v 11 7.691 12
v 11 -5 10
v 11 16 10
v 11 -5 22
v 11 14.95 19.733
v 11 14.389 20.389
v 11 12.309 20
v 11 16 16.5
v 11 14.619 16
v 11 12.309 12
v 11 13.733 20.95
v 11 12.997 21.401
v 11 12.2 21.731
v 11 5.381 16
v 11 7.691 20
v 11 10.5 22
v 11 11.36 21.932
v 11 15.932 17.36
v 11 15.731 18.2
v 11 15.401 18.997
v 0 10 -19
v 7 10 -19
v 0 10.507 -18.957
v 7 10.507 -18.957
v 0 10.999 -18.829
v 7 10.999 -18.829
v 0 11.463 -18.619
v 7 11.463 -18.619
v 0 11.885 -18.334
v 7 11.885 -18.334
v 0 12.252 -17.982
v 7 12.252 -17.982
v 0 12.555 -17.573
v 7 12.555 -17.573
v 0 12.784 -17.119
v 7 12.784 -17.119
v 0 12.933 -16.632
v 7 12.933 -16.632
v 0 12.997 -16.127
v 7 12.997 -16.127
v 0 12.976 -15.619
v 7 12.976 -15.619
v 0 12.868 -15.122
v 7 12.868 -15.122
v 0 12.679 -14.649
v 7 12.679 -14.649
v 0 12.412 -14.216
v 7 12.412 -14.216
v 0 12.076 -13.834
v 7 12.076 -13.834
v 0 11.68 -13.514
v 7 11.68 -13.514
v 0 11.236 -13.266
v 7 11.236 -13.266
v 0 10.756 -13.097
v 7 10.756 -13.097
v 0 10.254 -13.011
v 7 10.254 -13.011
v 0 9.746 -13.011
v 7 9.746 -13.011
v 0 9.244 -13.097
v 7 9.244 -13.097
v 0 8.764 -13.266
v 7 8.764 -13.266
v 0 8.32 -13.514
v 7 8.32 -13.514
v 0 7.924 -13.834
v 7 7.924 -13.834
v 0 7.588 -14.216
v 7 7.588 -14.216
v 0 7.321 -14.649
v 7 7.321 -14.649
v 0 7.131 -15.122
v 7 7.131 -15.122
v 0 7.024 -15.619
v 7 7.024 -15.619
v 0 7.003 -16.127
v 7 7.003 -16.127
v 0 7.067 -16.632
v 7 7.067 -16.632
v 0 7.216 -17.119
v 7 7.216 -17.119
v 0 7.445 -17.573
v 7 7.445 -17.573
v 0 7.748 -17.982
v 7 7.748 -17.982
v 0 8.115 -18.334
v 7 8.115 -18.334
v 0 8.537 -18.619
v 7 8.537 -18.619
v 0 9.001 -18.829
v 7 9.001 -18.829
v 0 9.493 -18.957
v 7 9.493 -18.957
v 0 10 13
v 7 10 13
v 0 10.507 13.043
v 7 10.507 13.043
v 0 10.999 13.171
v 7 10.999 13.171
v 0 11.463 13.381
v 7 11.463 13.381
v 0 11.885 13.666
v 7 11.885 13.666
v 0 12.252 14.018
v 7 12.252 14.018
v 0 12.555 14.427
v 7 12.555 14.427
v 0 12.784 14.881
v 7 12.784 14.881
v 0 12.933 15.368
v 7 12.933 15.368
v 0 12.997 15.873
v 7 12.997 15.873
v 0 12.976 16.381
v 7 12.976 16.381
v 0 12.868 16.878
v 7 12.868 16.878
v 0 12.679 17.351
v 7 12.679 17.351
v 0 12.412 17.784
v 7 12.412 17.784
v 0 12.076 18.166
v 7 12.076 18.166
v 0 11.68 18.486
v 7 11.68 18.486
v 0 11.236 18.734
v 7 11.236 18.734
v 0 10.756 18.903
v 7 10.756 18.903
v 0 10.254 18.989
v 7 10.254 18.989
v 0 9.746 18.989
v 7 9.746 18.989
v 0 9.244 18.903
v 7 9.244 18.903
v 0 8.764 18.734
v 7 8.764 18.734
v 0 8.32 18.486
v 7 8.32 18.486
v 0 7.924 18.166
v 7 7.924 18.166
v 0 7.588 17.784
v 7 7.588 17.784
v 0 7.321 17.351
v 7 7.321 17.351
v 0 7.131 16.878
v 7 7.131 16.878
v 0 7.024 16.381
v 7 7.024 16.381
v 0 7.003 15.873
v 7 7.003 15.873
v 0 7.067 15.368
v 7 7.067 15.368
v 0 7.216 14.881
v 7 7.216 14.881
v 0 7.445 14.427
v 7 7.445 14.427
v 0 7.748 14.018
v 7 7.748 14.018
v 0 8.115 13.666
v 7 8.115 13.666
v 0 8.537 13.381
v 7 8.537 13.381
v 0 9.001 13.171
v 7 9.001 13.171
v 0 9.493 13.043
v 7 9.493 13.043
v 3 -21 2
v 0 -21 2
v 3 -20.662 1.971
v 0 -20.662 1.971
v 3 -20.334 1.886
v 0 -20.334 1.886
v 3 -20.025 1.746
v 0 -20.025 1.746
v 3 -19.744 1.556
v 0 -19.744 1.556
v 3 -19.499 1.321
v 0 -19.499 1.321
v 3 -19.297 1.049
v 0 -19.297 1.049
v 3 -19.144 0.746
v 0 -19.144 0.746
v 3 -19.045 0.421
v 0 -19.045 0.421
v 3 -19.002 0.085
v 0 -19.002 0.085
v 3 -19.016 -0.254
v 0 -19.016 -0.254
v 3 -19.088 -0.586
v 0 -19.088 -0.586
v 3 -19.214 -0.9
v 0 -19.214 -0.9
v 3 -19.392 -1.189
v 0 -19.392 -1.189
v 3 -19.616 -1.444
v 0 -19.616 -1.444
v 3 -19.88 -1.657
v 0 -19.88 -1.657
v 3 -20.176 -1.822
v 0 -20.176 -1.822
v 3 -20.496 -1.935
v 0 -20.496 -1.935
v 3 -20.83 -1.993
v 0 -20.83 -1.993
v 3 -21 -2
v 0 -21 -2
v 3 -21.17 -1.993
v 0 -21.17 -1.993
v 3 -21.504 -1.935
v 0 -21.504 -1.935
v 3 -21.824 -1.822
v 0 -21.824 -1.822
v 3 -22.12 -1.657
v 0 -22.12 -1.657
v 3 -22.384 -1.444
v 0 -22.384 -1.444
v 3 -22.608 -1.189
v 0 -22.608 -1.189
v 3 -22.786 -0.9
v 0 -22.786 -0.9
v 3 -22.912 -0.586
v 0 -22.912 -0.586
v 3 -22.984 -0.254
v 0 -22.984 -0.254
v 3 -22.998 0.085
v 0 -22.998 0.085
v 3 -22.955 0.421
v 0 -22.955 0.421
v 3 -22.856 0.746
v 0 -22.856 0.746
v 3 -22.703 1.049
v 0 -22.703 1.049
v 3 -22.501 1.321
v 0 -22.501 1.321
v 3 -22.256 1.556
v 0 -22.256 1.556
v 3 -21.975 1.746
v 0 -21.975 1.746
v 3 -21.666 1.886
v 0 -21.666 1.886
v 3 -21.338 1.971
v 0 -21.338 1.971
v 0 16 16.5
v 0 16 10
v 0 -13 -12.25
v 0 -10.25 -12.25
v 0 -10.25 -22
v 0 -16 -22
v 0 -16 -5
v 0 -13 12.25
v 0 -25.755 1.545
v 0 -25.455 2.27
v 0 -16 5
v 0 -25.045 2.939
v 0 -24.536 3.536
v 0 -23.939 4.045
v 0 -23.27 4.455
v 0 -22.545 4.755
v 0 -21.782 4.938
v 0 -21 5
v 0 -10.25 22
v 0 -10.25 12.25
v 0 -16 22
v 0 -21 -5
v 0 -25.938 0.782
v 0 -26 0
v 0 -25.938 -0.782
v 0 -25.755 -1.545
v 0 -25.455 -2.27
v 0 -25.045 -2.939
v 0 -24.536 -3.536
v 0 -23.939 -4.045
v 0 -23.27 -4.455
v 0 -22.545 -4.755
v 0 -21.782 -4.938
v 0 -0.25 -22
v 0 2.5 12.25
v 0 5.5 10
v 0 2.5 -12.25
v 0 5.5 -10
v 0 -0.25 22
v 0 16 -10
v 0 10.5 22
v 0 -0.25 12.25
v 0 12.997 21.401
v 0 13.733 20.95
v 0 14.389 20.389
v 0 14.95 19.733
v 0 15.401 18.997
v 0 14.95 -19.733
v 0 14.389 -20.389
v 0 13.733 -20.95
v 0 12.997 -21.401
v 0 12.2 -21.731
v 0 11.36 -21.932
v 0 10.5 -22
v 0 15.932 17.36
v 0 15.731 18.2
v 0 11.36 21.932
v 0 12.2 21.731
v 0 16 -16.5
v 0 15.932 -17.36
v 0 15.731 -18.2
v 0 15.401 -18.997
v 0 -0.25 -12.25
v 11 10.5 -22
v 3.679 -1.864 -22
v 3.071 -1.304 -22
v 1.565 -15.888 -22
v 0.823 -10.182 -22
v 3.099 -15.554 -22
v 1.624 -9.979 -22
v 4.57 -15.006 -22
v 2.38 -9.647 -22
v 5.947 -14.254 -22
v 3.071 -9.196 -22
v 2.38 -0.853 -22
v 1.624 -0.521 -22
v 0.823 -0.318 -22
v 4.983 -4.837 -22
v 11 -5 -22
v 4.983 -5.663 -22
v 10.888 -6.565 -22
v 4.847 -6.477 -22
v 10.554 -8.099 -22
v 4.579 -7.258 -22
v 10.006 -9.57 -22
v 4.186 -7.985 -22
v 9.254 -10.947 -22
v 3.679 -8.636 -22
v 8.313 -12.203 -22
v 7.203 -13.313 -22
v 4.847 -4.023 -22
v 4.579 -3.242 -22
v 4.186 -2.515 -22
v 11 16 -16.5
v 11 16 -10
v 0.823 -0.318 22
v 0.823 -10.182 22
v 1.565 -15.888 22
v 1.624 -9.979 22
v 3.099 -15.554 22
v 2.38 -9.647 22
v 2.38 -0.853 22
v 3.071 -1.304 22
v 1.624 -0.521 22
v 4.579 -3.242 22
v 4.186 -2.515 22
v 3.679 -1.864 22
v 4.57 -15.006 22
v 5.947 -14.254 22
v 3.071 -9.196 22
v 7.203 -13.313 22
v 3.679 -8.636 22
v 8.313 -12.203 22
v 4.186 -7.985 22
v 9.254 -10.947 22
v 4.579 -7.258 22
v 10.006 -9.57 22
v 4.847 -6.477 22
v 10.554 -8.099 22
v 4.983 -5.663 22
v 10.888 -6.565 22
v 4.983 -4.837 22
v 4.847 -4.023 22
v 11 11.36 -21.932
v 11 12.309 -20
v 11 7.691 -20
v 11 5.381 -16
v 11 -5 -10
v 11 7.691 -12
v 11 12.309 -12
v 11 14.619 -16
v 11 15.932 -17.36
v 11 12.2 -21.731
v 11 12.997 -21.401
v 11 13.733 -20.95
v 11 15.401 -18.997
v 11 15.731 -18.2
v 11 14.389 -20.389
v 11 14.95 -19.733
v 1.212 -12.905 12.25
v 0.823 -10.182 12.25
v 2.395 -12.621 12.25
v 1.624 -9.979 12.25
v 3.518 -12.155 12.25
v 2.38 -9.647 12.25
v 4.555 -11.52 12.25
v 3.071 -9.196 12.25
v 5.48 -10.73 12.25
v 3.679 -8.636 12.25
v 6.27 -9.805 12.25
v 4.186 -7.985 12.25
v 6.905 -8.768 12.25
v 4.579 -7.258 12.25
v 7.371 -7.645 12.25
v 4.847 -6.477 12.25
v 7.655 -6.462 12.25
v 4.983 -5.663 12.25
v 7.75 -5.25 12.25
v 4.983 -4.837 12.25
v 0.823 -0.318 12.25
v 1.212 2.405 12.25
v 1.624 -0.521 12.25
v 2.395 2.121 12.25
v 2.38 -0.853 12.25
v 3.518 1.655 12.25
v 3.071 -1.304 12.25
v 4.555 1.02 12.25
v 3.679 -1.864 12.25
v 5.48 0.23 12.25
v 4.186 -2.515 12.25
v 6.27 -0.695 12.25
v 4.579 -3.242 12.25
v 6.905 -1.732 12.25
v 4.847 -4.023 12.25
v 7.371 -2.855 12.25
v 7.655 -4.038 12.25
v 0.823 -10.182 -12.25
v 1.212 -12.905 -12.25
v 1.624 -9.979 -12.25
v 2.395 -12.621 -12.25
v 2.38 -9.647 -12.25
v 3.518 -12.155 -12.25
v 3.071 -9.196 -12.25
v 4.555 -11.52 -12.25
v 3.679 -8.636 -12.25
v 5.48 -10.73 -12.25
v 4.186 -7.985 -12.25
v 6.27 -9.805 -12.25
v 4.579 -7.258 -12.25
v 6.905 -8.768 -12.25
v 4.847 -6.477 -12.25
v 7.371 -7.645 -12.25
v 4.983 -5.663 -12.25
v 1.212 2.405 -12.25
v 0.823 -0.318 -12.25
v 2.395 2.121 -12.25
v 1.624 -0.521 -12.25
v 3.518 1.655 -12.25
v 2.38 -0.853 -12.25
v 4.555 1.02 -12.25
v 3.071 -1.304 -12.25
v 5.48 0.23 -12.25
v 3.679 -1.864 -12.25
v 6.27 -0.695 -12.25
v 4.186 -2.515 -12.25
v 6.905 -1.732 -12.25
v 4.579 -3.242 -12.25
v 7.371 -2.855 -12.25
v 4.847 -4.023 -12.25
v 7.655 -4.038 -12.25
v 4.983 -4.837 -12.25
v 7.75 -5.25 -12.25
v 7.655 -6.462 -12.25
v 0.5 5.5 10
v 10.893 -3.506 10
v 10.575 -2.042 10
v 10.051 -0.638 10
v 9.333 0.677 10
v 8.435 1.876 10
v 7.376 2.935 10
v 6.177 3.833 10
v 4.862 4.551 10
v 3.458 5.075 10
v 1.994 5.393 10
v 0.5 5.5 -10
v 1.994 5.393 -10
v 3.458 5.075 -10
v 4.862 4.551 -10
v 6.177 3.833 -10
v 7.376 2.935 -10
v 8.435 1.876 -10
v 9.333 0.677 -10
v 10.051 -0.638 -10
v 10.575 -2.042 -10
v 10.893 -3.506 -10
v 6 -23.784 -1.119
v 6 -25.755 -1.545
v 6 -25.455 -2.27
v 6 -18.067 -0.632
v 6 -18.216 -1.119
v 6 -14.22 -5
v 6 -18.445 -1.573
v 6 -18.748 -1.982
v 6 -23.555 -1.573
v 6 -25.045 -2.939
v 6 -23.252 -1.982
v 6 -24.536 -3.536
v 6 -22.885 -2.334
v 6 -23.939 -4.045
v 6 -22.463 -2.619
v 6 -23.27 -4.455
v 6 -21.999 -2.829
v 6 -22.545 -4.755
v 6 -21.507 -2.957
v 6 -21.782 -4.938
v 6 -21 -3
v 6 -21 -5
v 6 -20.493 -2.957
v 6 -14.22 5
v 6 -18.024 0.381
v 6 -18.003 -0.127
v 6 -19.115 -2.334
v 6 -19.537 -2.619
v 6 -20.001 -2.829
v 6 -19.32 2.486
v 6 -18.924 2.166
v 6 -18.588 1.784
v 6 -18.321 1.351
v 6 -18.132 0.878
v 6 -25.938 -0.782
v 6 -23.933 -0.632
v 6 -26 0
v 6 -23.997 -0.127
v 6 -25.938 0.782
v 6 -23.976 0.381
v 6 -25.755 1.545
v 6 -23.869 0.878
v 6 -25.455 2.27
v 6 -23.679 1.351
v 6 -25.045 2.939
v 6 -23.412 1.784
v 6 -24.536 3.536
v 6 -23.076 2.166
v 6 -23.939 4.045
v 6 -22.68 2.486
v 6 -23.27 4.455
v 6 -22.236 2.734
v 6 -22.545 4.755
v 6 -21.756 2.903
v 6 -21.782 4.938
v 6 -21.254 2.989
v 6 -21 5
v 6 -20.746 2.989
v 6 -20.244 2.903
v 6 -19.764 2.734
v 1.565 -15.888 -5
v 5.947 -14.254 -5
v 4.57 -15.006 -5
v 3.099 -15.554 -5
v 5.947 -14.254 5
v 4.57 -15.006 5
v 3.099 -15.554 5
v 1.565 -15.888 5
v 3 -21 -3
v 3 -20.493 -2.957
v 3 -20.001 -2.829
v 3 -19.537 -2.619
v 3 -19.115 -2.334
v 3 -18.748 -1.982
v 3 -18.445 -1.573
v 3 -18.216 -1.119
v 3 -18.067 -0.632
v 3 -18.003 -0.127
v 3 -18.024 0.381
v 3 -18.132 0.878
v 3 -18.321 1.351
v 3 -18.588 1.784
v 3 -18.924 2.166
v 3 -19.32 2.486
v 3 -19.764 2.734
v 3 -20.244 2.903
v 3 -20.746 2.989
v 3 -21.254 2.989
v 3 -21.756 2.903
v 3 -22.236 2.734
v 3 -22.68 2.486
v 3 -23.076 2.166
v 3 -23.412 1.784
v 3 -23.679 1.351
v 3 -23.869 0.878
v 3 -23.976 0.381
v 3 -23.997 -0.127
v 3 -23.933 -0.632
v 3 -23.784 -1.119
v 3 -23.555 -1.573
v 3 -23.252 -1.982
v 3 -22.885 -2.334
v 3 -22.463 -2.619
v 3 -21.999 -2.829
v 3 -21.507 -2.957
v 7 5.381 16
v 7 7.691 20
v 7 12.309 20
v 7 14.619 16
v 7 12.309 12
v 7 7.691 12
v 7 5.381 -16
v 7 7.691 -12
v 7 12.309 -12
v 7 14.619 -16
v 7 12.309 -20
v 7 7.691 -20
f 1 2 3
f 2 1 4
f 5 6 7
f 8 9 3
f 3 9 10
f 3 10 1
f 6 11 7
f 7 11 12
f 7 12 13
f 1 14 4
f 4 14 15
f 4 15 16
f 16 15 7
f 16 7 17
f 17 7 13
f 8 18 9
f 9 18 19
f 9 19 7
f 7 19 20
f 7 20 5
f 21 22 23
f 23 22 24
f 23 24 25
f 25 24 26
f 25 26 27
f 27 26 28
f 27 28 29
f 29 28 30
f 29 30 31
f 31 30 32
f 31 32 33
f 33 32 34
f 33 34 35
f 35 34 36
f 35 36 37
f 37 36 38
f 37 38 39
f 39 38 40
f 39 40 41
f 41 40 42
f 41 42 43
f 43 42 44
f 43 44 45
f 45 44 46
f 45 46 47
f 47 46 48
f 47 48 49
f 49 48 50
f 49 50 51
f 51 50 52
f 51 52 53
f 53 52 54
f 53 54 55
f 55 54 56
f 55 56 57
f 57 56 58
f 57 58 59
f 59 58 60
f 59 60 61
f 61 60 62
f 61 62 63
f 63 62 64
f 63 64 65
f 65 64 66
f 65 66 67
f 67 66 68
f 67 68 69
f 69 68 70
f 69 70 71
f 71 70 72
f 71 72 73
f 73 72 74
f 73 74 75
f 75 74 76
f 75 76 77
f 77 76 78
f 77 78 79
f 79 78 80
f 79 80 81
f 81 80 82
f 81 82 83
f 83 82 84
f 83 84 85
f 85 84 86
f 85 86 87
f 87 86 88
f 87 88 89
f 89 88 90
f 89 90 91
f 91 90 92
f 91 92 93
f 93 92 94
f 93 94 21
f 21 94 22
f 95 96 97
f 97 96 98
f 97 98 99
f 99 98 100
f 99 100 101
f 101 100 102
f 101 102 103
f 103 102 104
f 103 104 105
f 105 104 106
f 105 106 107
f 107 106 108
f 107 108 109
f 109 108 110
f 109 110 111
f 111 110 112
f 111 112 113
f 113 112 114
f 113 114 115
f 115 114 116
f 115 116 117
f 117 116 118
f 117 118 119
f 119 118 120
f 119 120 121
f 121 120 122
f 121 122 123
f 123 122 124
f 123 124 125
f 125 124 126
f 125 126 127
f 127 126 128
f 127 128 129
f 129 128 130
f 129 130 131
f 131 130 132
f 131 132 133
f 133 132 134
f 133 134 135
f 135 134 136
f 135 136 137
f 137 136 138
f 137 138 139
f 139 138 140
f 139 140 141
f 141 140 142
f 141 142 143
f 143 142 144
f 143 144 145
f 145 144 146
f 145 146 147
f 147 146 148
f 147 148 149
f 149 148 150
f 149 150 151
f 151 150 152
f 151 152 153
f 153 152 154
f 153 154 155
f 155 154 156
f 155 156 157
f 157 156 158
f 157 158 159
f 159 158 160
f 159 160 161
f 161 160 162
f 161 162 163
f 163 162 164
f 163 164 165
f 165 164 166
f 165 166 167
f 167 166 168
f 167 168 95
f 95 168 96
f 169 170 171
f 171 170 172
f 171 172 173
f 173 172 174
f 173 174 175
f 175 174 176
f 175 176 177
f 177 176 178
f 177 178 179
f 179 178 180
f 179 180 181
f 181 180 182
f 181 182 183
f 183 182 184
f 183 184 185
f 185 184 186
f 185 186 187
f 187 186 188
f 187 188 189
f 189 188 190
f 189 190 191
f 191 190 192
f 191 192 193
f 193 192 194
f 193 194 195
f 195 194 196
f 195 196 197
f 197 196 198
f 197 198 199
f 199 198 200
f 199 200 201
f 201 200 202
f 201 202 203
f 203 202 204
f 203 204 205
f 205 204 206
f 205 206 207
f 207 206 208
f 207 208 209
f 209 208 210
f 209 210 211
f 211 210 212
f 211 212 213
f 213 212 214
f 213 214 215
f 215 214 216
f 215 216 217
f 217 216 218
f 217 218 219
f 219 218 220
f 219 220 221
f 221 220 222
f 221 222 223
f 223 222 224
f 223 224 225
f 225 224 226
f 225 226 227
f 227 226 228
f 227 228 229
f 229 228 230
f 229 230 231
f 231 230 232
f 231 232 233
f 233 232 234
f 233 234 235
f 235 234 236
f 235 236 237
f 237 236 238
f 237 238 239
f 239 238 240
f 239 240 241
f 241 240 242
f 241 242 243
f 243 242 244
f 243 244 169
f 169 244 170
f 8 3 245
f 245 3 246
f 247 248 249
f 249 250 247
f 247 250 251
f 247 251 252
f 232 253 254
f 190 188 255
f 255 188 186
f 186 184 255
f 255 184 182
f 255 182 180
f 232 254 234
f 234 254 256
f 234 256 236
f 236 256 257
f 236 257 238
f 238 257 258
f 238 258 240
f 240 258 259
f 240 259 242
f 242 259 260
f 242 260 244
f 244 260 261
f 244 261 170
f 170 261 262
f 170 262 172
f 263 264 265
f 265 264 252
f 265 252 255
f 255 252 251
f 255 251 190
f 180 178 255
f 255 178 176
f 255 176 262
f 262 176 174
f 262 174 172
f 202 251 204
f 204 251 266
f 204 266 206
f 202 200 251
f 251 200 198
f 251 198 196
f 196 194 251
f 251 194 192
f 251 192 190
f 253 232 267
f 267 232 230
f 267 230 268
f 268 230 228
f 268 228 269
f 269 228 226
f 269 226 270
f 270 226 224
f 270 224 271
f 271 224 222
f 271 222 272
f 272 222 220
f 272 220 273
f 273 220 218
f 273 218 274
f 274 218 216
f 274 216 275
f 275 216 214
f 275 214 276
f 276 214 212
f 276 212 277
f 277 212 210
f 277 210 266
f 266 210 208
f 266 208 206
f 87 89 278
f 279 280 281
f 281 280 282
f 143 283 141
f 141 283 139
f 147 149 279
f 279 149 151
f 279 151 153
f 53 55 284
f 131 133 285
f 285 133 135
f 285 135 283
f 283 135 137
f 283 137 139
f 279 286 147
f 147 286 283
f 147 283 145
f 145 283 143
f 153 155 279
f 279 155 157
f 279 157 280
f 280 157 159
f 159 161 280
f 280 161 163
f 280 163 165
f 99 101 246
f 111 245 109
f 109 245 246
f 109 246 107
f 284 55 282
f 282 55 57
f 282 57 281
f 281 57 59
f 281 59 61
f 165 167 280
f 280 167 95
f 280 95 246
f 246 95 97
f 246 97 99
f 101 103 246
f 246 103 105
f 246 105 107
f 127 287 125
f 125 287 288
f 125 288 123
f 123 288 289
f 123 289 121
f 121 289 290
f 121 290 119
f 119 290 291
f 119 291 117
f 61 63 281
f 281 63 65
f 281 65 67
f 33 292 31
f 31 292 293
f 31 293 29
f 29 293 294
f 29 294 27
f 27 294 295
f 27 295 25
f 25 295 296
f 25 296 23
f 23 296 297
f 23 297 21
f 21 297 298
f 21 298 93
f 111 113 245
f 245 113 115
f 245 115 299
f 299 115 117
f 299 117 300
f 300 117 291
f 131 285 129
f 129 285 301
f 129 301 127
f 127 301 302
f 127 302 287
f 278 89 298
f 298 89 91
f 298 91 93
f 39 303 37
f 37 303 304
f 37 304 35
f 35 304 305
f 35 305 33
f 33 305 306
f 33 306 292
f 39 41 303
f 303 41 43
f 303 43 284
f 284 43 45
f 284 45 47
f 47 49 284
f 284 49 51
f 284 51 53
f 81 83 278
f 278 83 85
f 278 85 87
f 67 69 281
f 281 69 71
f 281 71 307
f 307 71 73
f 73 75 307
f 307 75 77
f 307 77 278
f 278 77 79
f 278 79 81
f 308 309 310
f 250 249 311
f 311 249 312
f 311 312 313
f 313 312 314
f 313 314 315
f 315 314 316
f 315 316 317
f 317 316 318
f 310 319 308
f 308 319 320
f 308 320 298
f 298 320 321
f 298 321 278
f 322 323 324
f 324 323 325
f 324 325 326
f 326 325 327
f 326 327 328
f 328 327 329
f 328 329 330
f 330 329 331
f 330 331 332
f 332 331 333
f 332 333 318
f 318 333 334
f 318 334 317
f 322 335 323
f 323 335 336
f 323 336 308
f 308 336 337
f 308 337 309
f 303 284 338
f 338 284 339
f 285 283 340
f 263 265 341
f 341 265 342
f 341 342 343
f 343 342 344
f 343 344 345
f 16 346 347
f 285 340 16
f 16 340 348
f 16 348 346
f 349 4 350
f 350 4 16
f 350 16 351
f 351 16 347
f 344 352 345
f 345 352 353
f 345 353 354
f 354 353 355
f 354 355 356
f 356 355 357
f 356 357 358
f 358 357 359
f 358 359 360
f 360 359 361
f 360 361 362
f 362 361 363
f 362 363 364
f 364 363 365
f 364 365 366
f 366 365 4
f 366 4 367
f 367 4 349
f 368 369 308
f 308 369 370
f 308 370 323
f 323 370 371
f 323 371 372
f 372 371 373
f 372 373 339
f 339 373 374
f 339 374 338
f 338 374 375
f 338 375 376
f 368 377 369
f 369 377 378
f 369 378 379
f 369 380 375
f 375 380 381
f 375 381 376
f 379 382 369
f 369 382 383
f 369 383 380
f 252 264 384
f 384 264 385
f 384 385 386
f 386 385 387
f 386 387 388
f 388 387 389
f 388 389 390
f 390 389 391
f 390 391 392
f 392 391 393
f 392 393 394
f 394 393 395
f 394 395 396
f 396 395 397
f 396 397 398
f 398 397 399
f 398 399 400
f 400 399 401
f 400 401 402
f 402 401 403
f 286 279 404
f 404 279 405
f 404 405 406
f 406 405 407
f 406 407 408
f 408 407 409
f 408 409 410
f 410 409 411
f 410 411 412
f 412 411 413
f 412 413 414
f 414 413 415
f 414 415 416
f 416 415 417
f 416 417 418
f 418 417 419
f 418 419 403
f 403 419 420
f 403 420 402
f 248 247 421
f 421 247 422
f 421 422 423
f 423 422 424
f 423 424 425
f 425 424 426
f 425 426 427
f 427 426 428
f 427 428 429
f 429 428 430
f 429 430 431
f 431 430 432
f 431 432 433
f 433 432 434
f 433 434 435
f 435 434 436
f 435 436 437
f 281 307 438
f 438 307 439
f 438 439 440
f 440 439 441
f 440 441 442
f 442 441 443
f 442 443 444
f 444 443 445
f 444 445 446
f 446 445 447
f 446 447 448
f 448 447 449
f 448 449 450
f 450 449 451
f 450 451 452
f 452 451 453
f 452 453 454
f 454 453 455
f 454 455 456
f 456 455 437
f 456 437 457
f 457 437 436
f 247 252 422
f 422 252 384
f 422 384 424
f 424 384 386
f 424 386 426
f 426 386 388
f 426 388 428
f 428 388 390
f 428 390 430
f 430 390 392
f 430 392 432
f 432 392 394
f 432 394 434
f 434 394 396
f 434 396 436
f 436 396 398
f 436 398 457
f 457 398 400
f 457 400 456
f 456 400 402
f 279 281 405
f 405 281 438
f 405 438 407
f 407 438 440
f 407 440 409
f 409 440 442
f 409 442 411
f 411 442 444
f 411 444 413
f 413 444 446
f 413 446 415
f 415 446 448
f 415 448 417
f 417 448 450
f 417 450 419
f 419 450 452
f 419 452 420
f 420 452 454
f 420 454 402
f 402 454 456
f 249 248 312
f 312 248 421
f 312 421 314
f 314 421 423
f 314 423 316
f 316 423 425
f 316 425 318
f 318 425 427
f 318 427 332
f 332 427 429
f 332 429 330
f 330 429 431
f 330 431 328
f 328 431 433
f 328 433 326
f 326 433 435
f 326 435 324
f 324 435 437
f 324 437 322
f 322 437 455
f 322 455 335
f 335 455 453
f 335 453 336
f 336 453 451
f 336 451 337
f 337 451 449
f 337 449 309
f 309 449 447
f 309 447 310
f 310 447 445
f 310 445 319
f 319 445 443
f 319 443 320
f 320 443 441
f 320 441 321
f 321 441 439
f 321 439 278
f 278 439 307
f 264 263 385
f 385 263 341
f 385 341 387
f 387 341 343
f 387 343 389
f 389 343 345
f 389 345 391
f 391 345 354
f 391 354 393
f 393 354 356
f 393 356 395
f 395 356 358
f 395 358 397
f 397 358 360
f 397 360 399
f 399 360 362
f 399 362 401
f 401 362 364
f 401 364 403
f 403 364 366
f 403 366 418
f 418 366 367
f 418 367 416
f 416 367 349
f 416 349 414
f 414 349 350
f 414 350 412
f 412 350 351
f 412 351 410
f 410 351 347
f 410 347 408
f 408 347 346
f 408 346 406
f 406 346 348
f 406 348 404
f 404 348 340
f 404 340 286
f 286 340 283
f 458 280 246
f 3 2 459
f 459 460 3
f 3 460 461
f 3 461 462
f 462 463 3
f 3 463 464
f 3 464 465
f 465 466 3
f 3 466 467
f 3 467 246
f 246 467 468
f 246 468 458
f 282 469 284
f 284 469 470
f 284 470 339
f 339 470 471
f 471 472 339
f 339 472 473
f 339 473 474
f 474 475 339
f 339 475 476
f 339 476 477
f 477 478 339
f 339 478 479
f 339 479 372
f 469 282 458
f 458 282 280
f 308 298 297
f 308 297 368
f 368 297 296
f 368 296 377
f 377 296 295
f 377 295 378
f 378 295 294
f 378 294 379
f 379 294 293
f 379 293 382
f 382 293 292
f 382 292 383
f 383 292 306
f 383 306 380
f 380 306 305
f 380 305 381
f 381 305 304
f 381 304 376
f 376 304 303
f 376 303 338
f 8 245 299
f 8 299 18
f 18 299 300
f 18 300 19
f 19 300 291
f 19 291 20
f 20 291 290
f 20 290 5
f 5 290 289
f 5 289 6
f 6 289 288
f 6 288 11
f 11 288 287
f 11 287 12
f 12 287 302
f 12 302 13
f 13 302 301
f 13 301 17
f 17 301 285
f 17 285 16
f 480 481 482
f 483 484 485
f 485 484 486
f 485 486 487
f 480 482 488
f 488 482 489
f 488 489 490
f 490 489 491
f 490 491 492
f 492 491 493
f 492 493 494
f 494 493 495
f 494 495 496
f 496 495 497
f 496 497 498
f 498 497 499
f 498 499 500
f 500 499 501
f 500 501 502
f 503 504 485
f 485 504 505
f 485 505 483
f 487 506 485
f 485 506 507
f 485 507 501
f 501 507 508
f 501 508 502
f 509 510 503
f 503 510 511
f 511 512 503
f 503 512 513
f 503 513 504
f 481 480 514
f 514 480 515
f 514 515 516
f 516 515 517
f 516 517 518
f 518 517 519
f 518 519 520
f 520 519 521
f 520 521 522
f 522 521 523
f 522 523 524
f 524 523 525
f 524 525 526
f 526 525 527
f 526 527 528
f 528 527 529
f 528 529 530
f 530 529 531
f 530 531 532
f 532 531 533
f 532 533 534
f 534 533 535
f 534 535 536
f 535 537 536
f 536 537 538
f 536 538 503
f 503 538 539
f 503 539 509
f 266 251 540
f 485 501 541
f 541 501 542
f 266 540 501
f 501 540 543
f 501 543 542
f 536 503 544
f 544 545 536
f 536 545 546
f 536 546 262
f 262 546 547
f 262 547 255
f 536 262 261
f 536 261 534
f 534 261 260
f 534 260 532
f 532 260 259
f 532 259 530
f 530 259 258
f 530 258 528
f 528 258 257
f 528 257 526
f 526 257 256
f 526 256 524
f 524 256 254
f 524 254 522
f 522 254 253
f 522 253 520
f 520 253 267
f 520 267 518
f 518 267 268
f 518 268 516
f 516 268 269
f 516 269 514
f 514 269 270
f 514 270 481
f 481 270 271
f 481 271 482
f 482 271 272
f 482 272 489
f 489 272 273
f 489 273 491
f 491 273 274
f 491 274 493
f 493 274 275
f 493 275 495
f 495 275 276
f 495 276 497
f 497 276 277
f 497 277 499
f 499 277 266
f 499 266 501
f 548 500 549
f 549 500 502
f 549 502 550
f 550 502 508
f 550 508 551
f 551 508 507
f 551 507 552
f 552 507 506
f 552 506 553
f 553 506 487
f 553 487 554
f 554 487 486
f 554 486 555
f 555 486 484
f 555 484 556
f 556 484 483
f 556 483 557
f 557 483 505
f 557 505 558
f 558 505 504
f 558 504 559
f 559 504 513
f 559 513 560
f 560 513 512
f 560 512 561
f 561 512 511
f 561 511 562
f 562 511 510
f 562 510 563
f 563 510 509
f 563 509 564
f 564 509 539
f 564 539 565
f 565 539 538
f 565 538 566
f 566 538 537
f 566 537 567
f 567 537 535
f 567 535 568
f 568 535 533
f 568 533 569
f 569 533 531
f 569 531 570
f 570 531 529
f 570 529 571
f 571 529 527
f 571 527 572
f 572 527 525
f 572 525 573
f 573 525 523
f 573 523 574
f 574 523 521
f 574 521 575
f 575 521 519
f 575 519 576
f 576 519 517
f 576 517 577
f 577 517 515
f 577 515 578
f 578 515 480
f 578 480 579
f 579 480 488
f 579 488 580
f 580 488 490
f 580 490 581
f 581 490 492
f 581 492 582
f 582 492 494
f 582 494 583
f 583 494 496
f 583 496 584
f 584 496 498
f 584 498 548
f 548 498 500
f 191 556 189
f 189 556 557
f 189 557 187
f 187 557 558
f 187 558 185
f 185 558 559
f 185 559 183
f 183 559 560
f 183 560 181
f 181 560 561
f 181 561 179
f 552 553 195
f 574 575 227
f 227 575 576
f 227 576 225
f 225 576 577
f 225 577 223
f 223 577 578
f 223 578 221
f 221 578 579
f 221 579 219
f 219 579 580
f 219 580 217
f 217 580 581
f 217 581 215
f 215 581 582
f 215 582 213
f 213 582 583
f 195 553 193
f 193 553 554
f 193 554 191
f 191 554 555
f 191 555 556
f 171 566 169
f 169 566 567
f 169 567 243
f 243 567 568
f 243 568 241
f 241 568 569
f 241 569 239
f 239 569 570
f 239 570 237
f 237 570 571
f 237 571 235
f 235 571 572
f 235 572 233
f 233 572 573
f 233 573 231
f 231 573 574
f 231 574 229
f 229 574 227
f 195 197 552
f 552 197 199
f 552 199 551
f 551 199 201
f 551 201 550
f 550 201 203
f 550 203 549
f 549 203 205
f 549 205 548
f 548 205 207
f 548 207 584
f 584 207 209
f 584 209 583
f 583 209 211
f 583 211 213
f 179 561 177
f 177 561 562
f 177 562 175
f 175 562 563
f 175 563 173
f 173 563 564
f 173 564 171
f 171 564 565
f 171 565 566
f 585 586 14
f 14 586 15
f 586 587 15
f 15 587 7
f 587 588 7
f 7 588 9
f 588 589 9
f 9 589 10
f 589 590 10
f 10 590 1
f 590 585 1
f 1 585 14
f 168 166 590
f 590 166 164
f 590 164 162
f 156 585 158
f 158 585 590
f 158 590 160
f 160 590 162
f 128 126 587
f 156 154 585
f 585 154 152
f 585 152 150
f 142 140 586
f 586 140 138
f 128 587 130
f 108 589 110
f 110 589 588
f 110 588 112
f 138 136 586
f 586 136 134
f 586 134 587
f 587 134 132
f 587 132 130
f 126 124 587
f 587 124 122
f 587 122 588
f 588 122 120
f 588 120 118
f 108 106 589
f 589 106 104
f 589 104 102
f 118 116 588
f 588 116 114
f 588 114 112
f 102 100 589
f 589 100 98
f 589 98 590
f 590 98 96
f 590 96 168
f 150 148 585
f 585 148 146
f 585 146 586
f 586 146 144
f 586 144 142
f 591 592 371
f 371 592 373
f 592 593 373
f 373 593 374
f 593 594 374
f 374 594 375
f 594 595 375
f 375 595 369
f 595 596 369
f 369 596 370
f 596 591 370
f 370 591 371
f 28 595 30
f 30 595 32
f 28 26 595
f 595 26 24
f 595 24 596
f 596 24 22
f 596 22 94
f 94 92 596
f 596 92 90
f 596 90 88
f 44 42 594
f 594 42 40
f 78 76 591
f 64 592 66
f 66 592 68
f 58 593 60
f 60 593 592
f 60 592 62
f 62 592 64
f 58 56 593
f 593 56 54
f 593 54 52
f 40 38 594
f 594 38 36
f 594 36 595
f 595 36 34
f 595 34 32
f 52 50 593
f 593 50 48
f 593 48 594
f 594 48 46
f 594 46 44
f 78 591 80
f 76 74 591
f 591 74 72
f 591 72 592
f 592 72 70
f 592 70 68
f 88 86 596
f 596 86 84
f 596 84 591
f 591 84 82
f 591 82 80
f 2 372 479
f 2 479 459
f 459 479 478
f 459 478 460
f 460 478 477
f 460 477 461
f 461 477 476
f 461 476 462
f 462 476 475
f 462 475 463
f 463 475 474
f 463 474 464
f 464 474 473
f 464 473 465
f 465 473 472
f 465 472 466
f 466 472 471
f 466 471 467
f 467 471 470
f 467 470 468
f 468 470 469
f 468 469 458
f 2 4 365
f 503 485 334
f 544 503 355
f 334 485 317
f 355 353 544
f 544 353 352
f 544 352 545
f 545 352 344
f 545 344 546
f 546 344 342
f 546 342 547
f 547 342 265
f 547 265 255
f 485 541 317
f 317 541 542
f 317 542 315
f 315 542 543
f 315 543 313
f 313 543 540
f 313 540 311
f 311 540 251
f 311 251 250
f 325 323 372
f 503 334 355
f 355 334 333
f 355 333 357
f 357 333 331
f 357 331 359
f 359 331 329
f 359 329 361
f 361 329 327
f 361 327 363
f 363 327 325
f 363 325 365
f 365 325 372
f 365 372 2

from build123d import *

# Parameters (mm, degrees)
SKETCH1_W               = 44
SKETCH1_H               = 32
BOSS_EXTRUDE1_DEPTH     = 11
SKETCH2_W               = 24.5
SKETCH2_H               = 15.5
CUT_EXTRUDE1_DEPTH      = 7.75
FILLET1_R               = 7.75
CUT_EXTRUDE2_DEPTH      = 40.370833113
CUT_EXTRUDE2_DEPTH_BACK = 40.370833113
SKETCH4_R               = 3
SKETCH4_W               = 20
SKETCH4_H               = 10.5
CUT_EXTRUDE3_DEPTH      = 30.342801502
FILLET4_R               = 5.5
SKETCH7_W               = 10
SKETCH7_H               = 10
SKETCH7_R               = 2
BOSS_EXTRUDE5_DEPTH     = 6
FILLET5_R               = 5
CUT_EXTRUDE7_START      = -3
SKETCH9_R               = 3
SKETCH9_R_2             = 2
CUT_EXTRUDE7_DEPTH      = 3
SKETCH10_R              = 3
CUT_EXTRUDE8_DEPTH      = 4
FILLET7_R               = 10.5
FILLET8_R               = 11


# Some blends are built 0.0001 mm under size
with BuildPart() as part:
    # Sketch1 → Boss-Extrude1 (new body)
    with BuildSketch(Plane(origin=(0, 0, 0), x_dir=(0, 0, -1), z_dir=(1, 0, 0))):
        Rectangle(SKETCH1_W, SKETCH1_H)
    extrude(amount=BOSS_EXTRUDE1_DEPTH)

    # Sketch2 → Cut-Extrude1 (cut)
    with BuildSketch(Plane(origin=(0, 0, 0), x_dir=(0, 0, -1), z_dir=(1, 0, 0))):
        with Locations((0, -5.25)):
            Rectangle(SKETCH2_W, SKETCH2_H)
    extrude(amount=CUT_EXTRUDE1_DEPTH, mode=Mode.SUBTRACT)

    # Fillet1
    fillet1_edges = [part.edges().sort_by_distance(p)[0] for p in [
        (7.75, 2.5, 0),
        (7.75, -13, 0),
    ]]
    fillet(fillet1_edges, radius=FILLET1_R - 0.0001)  # a hair under: the kernel refuses the full size

    # Sketch3 → Cut-Extrude2 (cut, two sides: drawn at the far end of the back side and taken through both)
    with BuildSketch(Plane.XY.offset(-12.25).offset(-CUT_EXTRUDE2_DEPTH_BACK)):
        with BuildLine():
            ThreePointArc((0, -10.25), (3.535533906, -8.785533906), (5, -5.25))
            ThreePointArc((5, -5.25), (3.535533906, -1.714466094), (0, -0.25))
            Line((0, -0.25), (0, -10.25))
        make_face()
        with BuildLine():
            Line((0, -10.25), (0, -0.25))
            ThreePointArc((0, -0.25), (-5, -5.25), (0, -10.25))
        make_face()
    extrude(amount=CUT_EXTRUDE2_DEPTH + CUT_EXTRUDE2_DEPTH_BACK, mode=Mode.SUBTRACT)

    # Sketch4 → Cut-Extrude3 (cut, through all)
    with BuildSketch(Plane(origin=(11, 0, 0), x_dir=(0, 0, -1), z_dir=(1, 0, 0))):
        with Locations((-16, 10)):
            Circle(SKETCH4_R)
        with Locations((16, 10)):
            Circle(SKETCH4_R)
        with Locations((0, 10.75)):
            Rectangle(SKETCH4_W, SKETCH4_H)
    extrude(amount=-CUT_EXTRUDE3_DEPTH, mode=Mode.SUBTRACT)

    # Fillet4
    fillet4_edges = [part.edges().sort_by_distance(p)[0] for p in [
        (5.5, 16, 22),
        (5.5, 16, -22),
    ]]
    fillet(fillet4_edges, radius=FILLET4_R)

    # Sketch7 → Boss-Extrude5 (add)
    with BuildSketch(Plane(origin=(0, 0, 0), x_dir=(0, 0, -1), z_dir=(1, 0, 0))):
        with Locations((0, -21)):
            Rectangle(SKETCH7_W, SKETCH7_H)
        with Locations((0, -21)):
            Circle(SKETCH7_R, mode=Mode.SUBTRACT)
    extrude(amount=BOSS_EXTRUDE5_DEPTH)

    # Fillet5
    fillet5_edges = [part.edges().sort_by_distance(p)[0] for p in [
        (3, -26, -5),
        (3, -26, 5),
    ]]
    fillet(fillet5_edges, radius=FILLET5_R - 0.0001)  # a hair under: the kernel refuses the full size

    # Sketch9 → Cut-Extrude7 (cut)
    with BuildSketch(Plane(origin=(6, 0, 0), x_dir=(0, 0, -1), z_dir=(1, 0, 0)).offset(CUT_EXTRUDE7_START)):
        with Locations((0, -21)):
            Circle(SKETCH9_R)
        with Locations((0, -21)):
            Circle(SKETCH9_R_2, mode=Mode.SUBTRACT)
    extrude(amount=CUT_EXTRUDE7_DEPTH, mode=Mode.SUBTRACT)

    # Sketch10 → Cut-Extrude8 (cut)
    # profile 1 of 2: a face of its own
    with BuildSketch(Plane(origin=(11, 0, 0), x_dir=(0, 0, -1), z_dir=(1, 0, 0))):
        Polygon((-16, 5.381197846), (-12, 7.690598923), (-12, 12.309401077), (-16, 14.618802154), (-20, 12.309401077), (-20, 7.690598923), align=None)
        with Locations((-16, 10)):
            Circle(SKETCH10_R, mode=Mode.SUBTRACT)
    # profile 2 of 2: a face of its own
    with BuildSketch(Plane(origin=(11, 0, 0), x_dir=(0, 0, -1), z_dir=(1, 0, 0))):
        Polygon((16, 5.381197846), (20, 7.690598923), (20, 12.309401077), (16, 14.618802154), (12, 12.309401077), (12, 7.690598923), align=None)
        with Locations((16, 10)):
            Circle(SKETCH10_R, mode=Mode.SUBTRACT)
    extrude(amount=-CUT_EXTRUDE8_DEPTH, mode=Mode.SUBTRACT)

    # Fillet7
    fillet7_edges = [part.edges().sort_by_distance(p)[0] for p in [
        (11, 5.5, 0),
    ]]
    fillet(fillet7_edges, radius=FILLET7_R)

    # Fillet8
    # the kernel refuses this fillet: 11 mm, written as the material it takes off along each edge
    with BuildSketch(Plane(origin=(11, -16, 49.5), x_dir=(0, 1, 0), z_dir=(0, 0, -1))) as fillet8_piece_1_section:
        with BuildLine():
            CenterArc((FILLET8_R, -FILLET8_R), FILLET8_R, 90, 90)
            Line((0, -FILLET8_R), (0, 0))
            Line((0, 0), (FILLET8_R, 0))
        make_face()
    fillet8_piece_1 = extrude(amount=99, mode=Mode.PRIVATE)
    fillet8_piece_1 = split(fillet8_piece_1, bisect_by=Plane(origin=(6, -13.119412113, 27.25), z_dir=(1, 0, 0)), keep=Keep.TOP, mode=Mode.PRIVATE)
    fillet8_piece_1 = split(fillet8_piece_1, bisect_by=Plane(origin=(9.313036117, -13.119412113, 5), z_dir=(0, 0, 1)), keep=Keep.TOP, mode=Mode.PRIVATE)
    add(fillet8_piece_1, mode=Mode.SUBTRACT)
    with BuildSketch(Plane(origin=(11, -16, 49.5), x_dir=(0, 1, 0), z_dir=(0, 0, -1))) as fillet8_piece_2_section:
        with BuildLine():
            CenterArc((FILLET8_R, -FILLET8_R), FILLET8_R, 90, 90)
            Line((0, -FILLET8_R), (0, 0))
            Line((0, 0), (FILLET8_R, 0))
        make_face()
    fillet8_piece_2 = extrude(amount=99, mode=Mode.PRIVATE)
    fillet8_piece_2 = split(fillet8_piece_2, bisect_by=Plane(origin=(6, -15.650616863, 27.25), z_dir=(-1, 0, 0)), keep=Keep.TOP, mode=Mode.PRIVATE)
    fillet8_piece_2 = split(fillet8_piece_2, bisect_by=Plane(origin=(4.102097244, -15.650616863, 5), z_dir=(0, 0, 1)), keep=Keep.TOP, mode=Mode.PRIVATE)
    add(fillet8_piece_2, mode=Mode.SUBTRACT)
    with BuildSketch(Plane(origin=(11, -16, 49.5), x_dir=(0, 1, 0), z_dir=(0, 0, -1))) as fillet8_piece_3_section:
        with BuildLine():
            CenterArc((FILLET8_R, -FILLET8_R), FILLET8_R, 90, 90)
            Line((0, -FILLET8_R), (0, 0))
            Line((0, 0), (FILLET8_R, 0))
        make_face()
    fillet8_piece_3 = extrude(amount=99, mode=Mode.PRIVATE)
    fillet8_piece_3 = split(fillet8_piece_3, bisect_by=Plane(origin=(6, -13.119412113, 0), z_dir=(1, 0, 0)), keep=Keep.TOP, mode=Mode.PRIVATE)
    fillet8_piece_3 = split(fillet8_piece_3, bisect_by=Plane(origin=(9.313036117, -13.119412113, -5), z_dir=(0, 0, 1)), keep=Keep.TOP, mode=Mode.PRIVATE)
    fillet8_piece_3 = split(fillet8_piece_3, bisect_by=Plane(origin=(9.313036117, -13.119412113, 5), z_dir=(0, 0, -1)), keep=Keep.TOP, mode=Mode.PRIVATE)
    add(fillet8_piece_3, mode=Mode.SUBTRACT)
    with BuildSketch(Plane(origin=(11, -16, 49.5), x_dir=(0, 1, 0), z_dir=(0, 0, -1))) as fillet8_piece_4_section:
        with BuildLine():
            CenterArc((FILLET8_R, -FILLET8_R), FILLET8_R, 90, 90)
            Line((0, -FILLET8_R), (0, 0))
            Line((0, 0), (FILLET8_R, 0))
        make_face()
    fillet8_piece_4 = extrude(amount=99, mode=Mode.PRIVATE)
    fillet8_piece_4 = split(fillet8_piece_4, bisect_by=Plane(origin=(6, -13.119412113, -27.25), z_dir=(1, 0, 0)), keep=Keep.TOP, mode=Mode.PRIVATE)
    fillet8_piece_4 = split(fillet8_piece_4, bisect_by=Plane(origin=(9.313036117, -13.119412113, -5), z_dir=(0, 0, -1)), keep=Keep.TOP, mode=Mode.PRIVATE)
    add(fillet8_piece_4, mode=Mode.SUBTRACT)
    with BuildSketch(Plane(origin=(11, -16, 49.5), x_dir=(0, 1, 0), z_dir=(0, 0, -1))) as fillet8_piece_5_section:
        with BuildLine():
            CenterArc((FILLET8_R, -FILLET8_R), FILLET8_R, 90, 90)
            Line((0, -FILLET8_R), (0, 0))
            Line((0, 0), (FILLET8_R, 0))
        make_face()
    fillet8_piece_5 = extrude(amount=99, mode=Mode.PRIVATE)
    fillet8_piece_5 = split(fillet8_piece_5, bisect_by=Plane(origin=(6, -15.650616863, -27.25), z_dir=(-1, 0, 0)), keep=Keep.TOP, mode=Mode.PRIVATE)
    fillet8_piece_5 = split(fillet8_piece_5, bisect_by=Plane(origin=(4.102097244, -15.650616863, -5), z_dir=(0, 0, -1)), keep=Keep.TOP, mode=Mode.PRIVATE)
    add(fillet8_piece_5, mode=Mode.SUBTRACT)


solid = part.part
